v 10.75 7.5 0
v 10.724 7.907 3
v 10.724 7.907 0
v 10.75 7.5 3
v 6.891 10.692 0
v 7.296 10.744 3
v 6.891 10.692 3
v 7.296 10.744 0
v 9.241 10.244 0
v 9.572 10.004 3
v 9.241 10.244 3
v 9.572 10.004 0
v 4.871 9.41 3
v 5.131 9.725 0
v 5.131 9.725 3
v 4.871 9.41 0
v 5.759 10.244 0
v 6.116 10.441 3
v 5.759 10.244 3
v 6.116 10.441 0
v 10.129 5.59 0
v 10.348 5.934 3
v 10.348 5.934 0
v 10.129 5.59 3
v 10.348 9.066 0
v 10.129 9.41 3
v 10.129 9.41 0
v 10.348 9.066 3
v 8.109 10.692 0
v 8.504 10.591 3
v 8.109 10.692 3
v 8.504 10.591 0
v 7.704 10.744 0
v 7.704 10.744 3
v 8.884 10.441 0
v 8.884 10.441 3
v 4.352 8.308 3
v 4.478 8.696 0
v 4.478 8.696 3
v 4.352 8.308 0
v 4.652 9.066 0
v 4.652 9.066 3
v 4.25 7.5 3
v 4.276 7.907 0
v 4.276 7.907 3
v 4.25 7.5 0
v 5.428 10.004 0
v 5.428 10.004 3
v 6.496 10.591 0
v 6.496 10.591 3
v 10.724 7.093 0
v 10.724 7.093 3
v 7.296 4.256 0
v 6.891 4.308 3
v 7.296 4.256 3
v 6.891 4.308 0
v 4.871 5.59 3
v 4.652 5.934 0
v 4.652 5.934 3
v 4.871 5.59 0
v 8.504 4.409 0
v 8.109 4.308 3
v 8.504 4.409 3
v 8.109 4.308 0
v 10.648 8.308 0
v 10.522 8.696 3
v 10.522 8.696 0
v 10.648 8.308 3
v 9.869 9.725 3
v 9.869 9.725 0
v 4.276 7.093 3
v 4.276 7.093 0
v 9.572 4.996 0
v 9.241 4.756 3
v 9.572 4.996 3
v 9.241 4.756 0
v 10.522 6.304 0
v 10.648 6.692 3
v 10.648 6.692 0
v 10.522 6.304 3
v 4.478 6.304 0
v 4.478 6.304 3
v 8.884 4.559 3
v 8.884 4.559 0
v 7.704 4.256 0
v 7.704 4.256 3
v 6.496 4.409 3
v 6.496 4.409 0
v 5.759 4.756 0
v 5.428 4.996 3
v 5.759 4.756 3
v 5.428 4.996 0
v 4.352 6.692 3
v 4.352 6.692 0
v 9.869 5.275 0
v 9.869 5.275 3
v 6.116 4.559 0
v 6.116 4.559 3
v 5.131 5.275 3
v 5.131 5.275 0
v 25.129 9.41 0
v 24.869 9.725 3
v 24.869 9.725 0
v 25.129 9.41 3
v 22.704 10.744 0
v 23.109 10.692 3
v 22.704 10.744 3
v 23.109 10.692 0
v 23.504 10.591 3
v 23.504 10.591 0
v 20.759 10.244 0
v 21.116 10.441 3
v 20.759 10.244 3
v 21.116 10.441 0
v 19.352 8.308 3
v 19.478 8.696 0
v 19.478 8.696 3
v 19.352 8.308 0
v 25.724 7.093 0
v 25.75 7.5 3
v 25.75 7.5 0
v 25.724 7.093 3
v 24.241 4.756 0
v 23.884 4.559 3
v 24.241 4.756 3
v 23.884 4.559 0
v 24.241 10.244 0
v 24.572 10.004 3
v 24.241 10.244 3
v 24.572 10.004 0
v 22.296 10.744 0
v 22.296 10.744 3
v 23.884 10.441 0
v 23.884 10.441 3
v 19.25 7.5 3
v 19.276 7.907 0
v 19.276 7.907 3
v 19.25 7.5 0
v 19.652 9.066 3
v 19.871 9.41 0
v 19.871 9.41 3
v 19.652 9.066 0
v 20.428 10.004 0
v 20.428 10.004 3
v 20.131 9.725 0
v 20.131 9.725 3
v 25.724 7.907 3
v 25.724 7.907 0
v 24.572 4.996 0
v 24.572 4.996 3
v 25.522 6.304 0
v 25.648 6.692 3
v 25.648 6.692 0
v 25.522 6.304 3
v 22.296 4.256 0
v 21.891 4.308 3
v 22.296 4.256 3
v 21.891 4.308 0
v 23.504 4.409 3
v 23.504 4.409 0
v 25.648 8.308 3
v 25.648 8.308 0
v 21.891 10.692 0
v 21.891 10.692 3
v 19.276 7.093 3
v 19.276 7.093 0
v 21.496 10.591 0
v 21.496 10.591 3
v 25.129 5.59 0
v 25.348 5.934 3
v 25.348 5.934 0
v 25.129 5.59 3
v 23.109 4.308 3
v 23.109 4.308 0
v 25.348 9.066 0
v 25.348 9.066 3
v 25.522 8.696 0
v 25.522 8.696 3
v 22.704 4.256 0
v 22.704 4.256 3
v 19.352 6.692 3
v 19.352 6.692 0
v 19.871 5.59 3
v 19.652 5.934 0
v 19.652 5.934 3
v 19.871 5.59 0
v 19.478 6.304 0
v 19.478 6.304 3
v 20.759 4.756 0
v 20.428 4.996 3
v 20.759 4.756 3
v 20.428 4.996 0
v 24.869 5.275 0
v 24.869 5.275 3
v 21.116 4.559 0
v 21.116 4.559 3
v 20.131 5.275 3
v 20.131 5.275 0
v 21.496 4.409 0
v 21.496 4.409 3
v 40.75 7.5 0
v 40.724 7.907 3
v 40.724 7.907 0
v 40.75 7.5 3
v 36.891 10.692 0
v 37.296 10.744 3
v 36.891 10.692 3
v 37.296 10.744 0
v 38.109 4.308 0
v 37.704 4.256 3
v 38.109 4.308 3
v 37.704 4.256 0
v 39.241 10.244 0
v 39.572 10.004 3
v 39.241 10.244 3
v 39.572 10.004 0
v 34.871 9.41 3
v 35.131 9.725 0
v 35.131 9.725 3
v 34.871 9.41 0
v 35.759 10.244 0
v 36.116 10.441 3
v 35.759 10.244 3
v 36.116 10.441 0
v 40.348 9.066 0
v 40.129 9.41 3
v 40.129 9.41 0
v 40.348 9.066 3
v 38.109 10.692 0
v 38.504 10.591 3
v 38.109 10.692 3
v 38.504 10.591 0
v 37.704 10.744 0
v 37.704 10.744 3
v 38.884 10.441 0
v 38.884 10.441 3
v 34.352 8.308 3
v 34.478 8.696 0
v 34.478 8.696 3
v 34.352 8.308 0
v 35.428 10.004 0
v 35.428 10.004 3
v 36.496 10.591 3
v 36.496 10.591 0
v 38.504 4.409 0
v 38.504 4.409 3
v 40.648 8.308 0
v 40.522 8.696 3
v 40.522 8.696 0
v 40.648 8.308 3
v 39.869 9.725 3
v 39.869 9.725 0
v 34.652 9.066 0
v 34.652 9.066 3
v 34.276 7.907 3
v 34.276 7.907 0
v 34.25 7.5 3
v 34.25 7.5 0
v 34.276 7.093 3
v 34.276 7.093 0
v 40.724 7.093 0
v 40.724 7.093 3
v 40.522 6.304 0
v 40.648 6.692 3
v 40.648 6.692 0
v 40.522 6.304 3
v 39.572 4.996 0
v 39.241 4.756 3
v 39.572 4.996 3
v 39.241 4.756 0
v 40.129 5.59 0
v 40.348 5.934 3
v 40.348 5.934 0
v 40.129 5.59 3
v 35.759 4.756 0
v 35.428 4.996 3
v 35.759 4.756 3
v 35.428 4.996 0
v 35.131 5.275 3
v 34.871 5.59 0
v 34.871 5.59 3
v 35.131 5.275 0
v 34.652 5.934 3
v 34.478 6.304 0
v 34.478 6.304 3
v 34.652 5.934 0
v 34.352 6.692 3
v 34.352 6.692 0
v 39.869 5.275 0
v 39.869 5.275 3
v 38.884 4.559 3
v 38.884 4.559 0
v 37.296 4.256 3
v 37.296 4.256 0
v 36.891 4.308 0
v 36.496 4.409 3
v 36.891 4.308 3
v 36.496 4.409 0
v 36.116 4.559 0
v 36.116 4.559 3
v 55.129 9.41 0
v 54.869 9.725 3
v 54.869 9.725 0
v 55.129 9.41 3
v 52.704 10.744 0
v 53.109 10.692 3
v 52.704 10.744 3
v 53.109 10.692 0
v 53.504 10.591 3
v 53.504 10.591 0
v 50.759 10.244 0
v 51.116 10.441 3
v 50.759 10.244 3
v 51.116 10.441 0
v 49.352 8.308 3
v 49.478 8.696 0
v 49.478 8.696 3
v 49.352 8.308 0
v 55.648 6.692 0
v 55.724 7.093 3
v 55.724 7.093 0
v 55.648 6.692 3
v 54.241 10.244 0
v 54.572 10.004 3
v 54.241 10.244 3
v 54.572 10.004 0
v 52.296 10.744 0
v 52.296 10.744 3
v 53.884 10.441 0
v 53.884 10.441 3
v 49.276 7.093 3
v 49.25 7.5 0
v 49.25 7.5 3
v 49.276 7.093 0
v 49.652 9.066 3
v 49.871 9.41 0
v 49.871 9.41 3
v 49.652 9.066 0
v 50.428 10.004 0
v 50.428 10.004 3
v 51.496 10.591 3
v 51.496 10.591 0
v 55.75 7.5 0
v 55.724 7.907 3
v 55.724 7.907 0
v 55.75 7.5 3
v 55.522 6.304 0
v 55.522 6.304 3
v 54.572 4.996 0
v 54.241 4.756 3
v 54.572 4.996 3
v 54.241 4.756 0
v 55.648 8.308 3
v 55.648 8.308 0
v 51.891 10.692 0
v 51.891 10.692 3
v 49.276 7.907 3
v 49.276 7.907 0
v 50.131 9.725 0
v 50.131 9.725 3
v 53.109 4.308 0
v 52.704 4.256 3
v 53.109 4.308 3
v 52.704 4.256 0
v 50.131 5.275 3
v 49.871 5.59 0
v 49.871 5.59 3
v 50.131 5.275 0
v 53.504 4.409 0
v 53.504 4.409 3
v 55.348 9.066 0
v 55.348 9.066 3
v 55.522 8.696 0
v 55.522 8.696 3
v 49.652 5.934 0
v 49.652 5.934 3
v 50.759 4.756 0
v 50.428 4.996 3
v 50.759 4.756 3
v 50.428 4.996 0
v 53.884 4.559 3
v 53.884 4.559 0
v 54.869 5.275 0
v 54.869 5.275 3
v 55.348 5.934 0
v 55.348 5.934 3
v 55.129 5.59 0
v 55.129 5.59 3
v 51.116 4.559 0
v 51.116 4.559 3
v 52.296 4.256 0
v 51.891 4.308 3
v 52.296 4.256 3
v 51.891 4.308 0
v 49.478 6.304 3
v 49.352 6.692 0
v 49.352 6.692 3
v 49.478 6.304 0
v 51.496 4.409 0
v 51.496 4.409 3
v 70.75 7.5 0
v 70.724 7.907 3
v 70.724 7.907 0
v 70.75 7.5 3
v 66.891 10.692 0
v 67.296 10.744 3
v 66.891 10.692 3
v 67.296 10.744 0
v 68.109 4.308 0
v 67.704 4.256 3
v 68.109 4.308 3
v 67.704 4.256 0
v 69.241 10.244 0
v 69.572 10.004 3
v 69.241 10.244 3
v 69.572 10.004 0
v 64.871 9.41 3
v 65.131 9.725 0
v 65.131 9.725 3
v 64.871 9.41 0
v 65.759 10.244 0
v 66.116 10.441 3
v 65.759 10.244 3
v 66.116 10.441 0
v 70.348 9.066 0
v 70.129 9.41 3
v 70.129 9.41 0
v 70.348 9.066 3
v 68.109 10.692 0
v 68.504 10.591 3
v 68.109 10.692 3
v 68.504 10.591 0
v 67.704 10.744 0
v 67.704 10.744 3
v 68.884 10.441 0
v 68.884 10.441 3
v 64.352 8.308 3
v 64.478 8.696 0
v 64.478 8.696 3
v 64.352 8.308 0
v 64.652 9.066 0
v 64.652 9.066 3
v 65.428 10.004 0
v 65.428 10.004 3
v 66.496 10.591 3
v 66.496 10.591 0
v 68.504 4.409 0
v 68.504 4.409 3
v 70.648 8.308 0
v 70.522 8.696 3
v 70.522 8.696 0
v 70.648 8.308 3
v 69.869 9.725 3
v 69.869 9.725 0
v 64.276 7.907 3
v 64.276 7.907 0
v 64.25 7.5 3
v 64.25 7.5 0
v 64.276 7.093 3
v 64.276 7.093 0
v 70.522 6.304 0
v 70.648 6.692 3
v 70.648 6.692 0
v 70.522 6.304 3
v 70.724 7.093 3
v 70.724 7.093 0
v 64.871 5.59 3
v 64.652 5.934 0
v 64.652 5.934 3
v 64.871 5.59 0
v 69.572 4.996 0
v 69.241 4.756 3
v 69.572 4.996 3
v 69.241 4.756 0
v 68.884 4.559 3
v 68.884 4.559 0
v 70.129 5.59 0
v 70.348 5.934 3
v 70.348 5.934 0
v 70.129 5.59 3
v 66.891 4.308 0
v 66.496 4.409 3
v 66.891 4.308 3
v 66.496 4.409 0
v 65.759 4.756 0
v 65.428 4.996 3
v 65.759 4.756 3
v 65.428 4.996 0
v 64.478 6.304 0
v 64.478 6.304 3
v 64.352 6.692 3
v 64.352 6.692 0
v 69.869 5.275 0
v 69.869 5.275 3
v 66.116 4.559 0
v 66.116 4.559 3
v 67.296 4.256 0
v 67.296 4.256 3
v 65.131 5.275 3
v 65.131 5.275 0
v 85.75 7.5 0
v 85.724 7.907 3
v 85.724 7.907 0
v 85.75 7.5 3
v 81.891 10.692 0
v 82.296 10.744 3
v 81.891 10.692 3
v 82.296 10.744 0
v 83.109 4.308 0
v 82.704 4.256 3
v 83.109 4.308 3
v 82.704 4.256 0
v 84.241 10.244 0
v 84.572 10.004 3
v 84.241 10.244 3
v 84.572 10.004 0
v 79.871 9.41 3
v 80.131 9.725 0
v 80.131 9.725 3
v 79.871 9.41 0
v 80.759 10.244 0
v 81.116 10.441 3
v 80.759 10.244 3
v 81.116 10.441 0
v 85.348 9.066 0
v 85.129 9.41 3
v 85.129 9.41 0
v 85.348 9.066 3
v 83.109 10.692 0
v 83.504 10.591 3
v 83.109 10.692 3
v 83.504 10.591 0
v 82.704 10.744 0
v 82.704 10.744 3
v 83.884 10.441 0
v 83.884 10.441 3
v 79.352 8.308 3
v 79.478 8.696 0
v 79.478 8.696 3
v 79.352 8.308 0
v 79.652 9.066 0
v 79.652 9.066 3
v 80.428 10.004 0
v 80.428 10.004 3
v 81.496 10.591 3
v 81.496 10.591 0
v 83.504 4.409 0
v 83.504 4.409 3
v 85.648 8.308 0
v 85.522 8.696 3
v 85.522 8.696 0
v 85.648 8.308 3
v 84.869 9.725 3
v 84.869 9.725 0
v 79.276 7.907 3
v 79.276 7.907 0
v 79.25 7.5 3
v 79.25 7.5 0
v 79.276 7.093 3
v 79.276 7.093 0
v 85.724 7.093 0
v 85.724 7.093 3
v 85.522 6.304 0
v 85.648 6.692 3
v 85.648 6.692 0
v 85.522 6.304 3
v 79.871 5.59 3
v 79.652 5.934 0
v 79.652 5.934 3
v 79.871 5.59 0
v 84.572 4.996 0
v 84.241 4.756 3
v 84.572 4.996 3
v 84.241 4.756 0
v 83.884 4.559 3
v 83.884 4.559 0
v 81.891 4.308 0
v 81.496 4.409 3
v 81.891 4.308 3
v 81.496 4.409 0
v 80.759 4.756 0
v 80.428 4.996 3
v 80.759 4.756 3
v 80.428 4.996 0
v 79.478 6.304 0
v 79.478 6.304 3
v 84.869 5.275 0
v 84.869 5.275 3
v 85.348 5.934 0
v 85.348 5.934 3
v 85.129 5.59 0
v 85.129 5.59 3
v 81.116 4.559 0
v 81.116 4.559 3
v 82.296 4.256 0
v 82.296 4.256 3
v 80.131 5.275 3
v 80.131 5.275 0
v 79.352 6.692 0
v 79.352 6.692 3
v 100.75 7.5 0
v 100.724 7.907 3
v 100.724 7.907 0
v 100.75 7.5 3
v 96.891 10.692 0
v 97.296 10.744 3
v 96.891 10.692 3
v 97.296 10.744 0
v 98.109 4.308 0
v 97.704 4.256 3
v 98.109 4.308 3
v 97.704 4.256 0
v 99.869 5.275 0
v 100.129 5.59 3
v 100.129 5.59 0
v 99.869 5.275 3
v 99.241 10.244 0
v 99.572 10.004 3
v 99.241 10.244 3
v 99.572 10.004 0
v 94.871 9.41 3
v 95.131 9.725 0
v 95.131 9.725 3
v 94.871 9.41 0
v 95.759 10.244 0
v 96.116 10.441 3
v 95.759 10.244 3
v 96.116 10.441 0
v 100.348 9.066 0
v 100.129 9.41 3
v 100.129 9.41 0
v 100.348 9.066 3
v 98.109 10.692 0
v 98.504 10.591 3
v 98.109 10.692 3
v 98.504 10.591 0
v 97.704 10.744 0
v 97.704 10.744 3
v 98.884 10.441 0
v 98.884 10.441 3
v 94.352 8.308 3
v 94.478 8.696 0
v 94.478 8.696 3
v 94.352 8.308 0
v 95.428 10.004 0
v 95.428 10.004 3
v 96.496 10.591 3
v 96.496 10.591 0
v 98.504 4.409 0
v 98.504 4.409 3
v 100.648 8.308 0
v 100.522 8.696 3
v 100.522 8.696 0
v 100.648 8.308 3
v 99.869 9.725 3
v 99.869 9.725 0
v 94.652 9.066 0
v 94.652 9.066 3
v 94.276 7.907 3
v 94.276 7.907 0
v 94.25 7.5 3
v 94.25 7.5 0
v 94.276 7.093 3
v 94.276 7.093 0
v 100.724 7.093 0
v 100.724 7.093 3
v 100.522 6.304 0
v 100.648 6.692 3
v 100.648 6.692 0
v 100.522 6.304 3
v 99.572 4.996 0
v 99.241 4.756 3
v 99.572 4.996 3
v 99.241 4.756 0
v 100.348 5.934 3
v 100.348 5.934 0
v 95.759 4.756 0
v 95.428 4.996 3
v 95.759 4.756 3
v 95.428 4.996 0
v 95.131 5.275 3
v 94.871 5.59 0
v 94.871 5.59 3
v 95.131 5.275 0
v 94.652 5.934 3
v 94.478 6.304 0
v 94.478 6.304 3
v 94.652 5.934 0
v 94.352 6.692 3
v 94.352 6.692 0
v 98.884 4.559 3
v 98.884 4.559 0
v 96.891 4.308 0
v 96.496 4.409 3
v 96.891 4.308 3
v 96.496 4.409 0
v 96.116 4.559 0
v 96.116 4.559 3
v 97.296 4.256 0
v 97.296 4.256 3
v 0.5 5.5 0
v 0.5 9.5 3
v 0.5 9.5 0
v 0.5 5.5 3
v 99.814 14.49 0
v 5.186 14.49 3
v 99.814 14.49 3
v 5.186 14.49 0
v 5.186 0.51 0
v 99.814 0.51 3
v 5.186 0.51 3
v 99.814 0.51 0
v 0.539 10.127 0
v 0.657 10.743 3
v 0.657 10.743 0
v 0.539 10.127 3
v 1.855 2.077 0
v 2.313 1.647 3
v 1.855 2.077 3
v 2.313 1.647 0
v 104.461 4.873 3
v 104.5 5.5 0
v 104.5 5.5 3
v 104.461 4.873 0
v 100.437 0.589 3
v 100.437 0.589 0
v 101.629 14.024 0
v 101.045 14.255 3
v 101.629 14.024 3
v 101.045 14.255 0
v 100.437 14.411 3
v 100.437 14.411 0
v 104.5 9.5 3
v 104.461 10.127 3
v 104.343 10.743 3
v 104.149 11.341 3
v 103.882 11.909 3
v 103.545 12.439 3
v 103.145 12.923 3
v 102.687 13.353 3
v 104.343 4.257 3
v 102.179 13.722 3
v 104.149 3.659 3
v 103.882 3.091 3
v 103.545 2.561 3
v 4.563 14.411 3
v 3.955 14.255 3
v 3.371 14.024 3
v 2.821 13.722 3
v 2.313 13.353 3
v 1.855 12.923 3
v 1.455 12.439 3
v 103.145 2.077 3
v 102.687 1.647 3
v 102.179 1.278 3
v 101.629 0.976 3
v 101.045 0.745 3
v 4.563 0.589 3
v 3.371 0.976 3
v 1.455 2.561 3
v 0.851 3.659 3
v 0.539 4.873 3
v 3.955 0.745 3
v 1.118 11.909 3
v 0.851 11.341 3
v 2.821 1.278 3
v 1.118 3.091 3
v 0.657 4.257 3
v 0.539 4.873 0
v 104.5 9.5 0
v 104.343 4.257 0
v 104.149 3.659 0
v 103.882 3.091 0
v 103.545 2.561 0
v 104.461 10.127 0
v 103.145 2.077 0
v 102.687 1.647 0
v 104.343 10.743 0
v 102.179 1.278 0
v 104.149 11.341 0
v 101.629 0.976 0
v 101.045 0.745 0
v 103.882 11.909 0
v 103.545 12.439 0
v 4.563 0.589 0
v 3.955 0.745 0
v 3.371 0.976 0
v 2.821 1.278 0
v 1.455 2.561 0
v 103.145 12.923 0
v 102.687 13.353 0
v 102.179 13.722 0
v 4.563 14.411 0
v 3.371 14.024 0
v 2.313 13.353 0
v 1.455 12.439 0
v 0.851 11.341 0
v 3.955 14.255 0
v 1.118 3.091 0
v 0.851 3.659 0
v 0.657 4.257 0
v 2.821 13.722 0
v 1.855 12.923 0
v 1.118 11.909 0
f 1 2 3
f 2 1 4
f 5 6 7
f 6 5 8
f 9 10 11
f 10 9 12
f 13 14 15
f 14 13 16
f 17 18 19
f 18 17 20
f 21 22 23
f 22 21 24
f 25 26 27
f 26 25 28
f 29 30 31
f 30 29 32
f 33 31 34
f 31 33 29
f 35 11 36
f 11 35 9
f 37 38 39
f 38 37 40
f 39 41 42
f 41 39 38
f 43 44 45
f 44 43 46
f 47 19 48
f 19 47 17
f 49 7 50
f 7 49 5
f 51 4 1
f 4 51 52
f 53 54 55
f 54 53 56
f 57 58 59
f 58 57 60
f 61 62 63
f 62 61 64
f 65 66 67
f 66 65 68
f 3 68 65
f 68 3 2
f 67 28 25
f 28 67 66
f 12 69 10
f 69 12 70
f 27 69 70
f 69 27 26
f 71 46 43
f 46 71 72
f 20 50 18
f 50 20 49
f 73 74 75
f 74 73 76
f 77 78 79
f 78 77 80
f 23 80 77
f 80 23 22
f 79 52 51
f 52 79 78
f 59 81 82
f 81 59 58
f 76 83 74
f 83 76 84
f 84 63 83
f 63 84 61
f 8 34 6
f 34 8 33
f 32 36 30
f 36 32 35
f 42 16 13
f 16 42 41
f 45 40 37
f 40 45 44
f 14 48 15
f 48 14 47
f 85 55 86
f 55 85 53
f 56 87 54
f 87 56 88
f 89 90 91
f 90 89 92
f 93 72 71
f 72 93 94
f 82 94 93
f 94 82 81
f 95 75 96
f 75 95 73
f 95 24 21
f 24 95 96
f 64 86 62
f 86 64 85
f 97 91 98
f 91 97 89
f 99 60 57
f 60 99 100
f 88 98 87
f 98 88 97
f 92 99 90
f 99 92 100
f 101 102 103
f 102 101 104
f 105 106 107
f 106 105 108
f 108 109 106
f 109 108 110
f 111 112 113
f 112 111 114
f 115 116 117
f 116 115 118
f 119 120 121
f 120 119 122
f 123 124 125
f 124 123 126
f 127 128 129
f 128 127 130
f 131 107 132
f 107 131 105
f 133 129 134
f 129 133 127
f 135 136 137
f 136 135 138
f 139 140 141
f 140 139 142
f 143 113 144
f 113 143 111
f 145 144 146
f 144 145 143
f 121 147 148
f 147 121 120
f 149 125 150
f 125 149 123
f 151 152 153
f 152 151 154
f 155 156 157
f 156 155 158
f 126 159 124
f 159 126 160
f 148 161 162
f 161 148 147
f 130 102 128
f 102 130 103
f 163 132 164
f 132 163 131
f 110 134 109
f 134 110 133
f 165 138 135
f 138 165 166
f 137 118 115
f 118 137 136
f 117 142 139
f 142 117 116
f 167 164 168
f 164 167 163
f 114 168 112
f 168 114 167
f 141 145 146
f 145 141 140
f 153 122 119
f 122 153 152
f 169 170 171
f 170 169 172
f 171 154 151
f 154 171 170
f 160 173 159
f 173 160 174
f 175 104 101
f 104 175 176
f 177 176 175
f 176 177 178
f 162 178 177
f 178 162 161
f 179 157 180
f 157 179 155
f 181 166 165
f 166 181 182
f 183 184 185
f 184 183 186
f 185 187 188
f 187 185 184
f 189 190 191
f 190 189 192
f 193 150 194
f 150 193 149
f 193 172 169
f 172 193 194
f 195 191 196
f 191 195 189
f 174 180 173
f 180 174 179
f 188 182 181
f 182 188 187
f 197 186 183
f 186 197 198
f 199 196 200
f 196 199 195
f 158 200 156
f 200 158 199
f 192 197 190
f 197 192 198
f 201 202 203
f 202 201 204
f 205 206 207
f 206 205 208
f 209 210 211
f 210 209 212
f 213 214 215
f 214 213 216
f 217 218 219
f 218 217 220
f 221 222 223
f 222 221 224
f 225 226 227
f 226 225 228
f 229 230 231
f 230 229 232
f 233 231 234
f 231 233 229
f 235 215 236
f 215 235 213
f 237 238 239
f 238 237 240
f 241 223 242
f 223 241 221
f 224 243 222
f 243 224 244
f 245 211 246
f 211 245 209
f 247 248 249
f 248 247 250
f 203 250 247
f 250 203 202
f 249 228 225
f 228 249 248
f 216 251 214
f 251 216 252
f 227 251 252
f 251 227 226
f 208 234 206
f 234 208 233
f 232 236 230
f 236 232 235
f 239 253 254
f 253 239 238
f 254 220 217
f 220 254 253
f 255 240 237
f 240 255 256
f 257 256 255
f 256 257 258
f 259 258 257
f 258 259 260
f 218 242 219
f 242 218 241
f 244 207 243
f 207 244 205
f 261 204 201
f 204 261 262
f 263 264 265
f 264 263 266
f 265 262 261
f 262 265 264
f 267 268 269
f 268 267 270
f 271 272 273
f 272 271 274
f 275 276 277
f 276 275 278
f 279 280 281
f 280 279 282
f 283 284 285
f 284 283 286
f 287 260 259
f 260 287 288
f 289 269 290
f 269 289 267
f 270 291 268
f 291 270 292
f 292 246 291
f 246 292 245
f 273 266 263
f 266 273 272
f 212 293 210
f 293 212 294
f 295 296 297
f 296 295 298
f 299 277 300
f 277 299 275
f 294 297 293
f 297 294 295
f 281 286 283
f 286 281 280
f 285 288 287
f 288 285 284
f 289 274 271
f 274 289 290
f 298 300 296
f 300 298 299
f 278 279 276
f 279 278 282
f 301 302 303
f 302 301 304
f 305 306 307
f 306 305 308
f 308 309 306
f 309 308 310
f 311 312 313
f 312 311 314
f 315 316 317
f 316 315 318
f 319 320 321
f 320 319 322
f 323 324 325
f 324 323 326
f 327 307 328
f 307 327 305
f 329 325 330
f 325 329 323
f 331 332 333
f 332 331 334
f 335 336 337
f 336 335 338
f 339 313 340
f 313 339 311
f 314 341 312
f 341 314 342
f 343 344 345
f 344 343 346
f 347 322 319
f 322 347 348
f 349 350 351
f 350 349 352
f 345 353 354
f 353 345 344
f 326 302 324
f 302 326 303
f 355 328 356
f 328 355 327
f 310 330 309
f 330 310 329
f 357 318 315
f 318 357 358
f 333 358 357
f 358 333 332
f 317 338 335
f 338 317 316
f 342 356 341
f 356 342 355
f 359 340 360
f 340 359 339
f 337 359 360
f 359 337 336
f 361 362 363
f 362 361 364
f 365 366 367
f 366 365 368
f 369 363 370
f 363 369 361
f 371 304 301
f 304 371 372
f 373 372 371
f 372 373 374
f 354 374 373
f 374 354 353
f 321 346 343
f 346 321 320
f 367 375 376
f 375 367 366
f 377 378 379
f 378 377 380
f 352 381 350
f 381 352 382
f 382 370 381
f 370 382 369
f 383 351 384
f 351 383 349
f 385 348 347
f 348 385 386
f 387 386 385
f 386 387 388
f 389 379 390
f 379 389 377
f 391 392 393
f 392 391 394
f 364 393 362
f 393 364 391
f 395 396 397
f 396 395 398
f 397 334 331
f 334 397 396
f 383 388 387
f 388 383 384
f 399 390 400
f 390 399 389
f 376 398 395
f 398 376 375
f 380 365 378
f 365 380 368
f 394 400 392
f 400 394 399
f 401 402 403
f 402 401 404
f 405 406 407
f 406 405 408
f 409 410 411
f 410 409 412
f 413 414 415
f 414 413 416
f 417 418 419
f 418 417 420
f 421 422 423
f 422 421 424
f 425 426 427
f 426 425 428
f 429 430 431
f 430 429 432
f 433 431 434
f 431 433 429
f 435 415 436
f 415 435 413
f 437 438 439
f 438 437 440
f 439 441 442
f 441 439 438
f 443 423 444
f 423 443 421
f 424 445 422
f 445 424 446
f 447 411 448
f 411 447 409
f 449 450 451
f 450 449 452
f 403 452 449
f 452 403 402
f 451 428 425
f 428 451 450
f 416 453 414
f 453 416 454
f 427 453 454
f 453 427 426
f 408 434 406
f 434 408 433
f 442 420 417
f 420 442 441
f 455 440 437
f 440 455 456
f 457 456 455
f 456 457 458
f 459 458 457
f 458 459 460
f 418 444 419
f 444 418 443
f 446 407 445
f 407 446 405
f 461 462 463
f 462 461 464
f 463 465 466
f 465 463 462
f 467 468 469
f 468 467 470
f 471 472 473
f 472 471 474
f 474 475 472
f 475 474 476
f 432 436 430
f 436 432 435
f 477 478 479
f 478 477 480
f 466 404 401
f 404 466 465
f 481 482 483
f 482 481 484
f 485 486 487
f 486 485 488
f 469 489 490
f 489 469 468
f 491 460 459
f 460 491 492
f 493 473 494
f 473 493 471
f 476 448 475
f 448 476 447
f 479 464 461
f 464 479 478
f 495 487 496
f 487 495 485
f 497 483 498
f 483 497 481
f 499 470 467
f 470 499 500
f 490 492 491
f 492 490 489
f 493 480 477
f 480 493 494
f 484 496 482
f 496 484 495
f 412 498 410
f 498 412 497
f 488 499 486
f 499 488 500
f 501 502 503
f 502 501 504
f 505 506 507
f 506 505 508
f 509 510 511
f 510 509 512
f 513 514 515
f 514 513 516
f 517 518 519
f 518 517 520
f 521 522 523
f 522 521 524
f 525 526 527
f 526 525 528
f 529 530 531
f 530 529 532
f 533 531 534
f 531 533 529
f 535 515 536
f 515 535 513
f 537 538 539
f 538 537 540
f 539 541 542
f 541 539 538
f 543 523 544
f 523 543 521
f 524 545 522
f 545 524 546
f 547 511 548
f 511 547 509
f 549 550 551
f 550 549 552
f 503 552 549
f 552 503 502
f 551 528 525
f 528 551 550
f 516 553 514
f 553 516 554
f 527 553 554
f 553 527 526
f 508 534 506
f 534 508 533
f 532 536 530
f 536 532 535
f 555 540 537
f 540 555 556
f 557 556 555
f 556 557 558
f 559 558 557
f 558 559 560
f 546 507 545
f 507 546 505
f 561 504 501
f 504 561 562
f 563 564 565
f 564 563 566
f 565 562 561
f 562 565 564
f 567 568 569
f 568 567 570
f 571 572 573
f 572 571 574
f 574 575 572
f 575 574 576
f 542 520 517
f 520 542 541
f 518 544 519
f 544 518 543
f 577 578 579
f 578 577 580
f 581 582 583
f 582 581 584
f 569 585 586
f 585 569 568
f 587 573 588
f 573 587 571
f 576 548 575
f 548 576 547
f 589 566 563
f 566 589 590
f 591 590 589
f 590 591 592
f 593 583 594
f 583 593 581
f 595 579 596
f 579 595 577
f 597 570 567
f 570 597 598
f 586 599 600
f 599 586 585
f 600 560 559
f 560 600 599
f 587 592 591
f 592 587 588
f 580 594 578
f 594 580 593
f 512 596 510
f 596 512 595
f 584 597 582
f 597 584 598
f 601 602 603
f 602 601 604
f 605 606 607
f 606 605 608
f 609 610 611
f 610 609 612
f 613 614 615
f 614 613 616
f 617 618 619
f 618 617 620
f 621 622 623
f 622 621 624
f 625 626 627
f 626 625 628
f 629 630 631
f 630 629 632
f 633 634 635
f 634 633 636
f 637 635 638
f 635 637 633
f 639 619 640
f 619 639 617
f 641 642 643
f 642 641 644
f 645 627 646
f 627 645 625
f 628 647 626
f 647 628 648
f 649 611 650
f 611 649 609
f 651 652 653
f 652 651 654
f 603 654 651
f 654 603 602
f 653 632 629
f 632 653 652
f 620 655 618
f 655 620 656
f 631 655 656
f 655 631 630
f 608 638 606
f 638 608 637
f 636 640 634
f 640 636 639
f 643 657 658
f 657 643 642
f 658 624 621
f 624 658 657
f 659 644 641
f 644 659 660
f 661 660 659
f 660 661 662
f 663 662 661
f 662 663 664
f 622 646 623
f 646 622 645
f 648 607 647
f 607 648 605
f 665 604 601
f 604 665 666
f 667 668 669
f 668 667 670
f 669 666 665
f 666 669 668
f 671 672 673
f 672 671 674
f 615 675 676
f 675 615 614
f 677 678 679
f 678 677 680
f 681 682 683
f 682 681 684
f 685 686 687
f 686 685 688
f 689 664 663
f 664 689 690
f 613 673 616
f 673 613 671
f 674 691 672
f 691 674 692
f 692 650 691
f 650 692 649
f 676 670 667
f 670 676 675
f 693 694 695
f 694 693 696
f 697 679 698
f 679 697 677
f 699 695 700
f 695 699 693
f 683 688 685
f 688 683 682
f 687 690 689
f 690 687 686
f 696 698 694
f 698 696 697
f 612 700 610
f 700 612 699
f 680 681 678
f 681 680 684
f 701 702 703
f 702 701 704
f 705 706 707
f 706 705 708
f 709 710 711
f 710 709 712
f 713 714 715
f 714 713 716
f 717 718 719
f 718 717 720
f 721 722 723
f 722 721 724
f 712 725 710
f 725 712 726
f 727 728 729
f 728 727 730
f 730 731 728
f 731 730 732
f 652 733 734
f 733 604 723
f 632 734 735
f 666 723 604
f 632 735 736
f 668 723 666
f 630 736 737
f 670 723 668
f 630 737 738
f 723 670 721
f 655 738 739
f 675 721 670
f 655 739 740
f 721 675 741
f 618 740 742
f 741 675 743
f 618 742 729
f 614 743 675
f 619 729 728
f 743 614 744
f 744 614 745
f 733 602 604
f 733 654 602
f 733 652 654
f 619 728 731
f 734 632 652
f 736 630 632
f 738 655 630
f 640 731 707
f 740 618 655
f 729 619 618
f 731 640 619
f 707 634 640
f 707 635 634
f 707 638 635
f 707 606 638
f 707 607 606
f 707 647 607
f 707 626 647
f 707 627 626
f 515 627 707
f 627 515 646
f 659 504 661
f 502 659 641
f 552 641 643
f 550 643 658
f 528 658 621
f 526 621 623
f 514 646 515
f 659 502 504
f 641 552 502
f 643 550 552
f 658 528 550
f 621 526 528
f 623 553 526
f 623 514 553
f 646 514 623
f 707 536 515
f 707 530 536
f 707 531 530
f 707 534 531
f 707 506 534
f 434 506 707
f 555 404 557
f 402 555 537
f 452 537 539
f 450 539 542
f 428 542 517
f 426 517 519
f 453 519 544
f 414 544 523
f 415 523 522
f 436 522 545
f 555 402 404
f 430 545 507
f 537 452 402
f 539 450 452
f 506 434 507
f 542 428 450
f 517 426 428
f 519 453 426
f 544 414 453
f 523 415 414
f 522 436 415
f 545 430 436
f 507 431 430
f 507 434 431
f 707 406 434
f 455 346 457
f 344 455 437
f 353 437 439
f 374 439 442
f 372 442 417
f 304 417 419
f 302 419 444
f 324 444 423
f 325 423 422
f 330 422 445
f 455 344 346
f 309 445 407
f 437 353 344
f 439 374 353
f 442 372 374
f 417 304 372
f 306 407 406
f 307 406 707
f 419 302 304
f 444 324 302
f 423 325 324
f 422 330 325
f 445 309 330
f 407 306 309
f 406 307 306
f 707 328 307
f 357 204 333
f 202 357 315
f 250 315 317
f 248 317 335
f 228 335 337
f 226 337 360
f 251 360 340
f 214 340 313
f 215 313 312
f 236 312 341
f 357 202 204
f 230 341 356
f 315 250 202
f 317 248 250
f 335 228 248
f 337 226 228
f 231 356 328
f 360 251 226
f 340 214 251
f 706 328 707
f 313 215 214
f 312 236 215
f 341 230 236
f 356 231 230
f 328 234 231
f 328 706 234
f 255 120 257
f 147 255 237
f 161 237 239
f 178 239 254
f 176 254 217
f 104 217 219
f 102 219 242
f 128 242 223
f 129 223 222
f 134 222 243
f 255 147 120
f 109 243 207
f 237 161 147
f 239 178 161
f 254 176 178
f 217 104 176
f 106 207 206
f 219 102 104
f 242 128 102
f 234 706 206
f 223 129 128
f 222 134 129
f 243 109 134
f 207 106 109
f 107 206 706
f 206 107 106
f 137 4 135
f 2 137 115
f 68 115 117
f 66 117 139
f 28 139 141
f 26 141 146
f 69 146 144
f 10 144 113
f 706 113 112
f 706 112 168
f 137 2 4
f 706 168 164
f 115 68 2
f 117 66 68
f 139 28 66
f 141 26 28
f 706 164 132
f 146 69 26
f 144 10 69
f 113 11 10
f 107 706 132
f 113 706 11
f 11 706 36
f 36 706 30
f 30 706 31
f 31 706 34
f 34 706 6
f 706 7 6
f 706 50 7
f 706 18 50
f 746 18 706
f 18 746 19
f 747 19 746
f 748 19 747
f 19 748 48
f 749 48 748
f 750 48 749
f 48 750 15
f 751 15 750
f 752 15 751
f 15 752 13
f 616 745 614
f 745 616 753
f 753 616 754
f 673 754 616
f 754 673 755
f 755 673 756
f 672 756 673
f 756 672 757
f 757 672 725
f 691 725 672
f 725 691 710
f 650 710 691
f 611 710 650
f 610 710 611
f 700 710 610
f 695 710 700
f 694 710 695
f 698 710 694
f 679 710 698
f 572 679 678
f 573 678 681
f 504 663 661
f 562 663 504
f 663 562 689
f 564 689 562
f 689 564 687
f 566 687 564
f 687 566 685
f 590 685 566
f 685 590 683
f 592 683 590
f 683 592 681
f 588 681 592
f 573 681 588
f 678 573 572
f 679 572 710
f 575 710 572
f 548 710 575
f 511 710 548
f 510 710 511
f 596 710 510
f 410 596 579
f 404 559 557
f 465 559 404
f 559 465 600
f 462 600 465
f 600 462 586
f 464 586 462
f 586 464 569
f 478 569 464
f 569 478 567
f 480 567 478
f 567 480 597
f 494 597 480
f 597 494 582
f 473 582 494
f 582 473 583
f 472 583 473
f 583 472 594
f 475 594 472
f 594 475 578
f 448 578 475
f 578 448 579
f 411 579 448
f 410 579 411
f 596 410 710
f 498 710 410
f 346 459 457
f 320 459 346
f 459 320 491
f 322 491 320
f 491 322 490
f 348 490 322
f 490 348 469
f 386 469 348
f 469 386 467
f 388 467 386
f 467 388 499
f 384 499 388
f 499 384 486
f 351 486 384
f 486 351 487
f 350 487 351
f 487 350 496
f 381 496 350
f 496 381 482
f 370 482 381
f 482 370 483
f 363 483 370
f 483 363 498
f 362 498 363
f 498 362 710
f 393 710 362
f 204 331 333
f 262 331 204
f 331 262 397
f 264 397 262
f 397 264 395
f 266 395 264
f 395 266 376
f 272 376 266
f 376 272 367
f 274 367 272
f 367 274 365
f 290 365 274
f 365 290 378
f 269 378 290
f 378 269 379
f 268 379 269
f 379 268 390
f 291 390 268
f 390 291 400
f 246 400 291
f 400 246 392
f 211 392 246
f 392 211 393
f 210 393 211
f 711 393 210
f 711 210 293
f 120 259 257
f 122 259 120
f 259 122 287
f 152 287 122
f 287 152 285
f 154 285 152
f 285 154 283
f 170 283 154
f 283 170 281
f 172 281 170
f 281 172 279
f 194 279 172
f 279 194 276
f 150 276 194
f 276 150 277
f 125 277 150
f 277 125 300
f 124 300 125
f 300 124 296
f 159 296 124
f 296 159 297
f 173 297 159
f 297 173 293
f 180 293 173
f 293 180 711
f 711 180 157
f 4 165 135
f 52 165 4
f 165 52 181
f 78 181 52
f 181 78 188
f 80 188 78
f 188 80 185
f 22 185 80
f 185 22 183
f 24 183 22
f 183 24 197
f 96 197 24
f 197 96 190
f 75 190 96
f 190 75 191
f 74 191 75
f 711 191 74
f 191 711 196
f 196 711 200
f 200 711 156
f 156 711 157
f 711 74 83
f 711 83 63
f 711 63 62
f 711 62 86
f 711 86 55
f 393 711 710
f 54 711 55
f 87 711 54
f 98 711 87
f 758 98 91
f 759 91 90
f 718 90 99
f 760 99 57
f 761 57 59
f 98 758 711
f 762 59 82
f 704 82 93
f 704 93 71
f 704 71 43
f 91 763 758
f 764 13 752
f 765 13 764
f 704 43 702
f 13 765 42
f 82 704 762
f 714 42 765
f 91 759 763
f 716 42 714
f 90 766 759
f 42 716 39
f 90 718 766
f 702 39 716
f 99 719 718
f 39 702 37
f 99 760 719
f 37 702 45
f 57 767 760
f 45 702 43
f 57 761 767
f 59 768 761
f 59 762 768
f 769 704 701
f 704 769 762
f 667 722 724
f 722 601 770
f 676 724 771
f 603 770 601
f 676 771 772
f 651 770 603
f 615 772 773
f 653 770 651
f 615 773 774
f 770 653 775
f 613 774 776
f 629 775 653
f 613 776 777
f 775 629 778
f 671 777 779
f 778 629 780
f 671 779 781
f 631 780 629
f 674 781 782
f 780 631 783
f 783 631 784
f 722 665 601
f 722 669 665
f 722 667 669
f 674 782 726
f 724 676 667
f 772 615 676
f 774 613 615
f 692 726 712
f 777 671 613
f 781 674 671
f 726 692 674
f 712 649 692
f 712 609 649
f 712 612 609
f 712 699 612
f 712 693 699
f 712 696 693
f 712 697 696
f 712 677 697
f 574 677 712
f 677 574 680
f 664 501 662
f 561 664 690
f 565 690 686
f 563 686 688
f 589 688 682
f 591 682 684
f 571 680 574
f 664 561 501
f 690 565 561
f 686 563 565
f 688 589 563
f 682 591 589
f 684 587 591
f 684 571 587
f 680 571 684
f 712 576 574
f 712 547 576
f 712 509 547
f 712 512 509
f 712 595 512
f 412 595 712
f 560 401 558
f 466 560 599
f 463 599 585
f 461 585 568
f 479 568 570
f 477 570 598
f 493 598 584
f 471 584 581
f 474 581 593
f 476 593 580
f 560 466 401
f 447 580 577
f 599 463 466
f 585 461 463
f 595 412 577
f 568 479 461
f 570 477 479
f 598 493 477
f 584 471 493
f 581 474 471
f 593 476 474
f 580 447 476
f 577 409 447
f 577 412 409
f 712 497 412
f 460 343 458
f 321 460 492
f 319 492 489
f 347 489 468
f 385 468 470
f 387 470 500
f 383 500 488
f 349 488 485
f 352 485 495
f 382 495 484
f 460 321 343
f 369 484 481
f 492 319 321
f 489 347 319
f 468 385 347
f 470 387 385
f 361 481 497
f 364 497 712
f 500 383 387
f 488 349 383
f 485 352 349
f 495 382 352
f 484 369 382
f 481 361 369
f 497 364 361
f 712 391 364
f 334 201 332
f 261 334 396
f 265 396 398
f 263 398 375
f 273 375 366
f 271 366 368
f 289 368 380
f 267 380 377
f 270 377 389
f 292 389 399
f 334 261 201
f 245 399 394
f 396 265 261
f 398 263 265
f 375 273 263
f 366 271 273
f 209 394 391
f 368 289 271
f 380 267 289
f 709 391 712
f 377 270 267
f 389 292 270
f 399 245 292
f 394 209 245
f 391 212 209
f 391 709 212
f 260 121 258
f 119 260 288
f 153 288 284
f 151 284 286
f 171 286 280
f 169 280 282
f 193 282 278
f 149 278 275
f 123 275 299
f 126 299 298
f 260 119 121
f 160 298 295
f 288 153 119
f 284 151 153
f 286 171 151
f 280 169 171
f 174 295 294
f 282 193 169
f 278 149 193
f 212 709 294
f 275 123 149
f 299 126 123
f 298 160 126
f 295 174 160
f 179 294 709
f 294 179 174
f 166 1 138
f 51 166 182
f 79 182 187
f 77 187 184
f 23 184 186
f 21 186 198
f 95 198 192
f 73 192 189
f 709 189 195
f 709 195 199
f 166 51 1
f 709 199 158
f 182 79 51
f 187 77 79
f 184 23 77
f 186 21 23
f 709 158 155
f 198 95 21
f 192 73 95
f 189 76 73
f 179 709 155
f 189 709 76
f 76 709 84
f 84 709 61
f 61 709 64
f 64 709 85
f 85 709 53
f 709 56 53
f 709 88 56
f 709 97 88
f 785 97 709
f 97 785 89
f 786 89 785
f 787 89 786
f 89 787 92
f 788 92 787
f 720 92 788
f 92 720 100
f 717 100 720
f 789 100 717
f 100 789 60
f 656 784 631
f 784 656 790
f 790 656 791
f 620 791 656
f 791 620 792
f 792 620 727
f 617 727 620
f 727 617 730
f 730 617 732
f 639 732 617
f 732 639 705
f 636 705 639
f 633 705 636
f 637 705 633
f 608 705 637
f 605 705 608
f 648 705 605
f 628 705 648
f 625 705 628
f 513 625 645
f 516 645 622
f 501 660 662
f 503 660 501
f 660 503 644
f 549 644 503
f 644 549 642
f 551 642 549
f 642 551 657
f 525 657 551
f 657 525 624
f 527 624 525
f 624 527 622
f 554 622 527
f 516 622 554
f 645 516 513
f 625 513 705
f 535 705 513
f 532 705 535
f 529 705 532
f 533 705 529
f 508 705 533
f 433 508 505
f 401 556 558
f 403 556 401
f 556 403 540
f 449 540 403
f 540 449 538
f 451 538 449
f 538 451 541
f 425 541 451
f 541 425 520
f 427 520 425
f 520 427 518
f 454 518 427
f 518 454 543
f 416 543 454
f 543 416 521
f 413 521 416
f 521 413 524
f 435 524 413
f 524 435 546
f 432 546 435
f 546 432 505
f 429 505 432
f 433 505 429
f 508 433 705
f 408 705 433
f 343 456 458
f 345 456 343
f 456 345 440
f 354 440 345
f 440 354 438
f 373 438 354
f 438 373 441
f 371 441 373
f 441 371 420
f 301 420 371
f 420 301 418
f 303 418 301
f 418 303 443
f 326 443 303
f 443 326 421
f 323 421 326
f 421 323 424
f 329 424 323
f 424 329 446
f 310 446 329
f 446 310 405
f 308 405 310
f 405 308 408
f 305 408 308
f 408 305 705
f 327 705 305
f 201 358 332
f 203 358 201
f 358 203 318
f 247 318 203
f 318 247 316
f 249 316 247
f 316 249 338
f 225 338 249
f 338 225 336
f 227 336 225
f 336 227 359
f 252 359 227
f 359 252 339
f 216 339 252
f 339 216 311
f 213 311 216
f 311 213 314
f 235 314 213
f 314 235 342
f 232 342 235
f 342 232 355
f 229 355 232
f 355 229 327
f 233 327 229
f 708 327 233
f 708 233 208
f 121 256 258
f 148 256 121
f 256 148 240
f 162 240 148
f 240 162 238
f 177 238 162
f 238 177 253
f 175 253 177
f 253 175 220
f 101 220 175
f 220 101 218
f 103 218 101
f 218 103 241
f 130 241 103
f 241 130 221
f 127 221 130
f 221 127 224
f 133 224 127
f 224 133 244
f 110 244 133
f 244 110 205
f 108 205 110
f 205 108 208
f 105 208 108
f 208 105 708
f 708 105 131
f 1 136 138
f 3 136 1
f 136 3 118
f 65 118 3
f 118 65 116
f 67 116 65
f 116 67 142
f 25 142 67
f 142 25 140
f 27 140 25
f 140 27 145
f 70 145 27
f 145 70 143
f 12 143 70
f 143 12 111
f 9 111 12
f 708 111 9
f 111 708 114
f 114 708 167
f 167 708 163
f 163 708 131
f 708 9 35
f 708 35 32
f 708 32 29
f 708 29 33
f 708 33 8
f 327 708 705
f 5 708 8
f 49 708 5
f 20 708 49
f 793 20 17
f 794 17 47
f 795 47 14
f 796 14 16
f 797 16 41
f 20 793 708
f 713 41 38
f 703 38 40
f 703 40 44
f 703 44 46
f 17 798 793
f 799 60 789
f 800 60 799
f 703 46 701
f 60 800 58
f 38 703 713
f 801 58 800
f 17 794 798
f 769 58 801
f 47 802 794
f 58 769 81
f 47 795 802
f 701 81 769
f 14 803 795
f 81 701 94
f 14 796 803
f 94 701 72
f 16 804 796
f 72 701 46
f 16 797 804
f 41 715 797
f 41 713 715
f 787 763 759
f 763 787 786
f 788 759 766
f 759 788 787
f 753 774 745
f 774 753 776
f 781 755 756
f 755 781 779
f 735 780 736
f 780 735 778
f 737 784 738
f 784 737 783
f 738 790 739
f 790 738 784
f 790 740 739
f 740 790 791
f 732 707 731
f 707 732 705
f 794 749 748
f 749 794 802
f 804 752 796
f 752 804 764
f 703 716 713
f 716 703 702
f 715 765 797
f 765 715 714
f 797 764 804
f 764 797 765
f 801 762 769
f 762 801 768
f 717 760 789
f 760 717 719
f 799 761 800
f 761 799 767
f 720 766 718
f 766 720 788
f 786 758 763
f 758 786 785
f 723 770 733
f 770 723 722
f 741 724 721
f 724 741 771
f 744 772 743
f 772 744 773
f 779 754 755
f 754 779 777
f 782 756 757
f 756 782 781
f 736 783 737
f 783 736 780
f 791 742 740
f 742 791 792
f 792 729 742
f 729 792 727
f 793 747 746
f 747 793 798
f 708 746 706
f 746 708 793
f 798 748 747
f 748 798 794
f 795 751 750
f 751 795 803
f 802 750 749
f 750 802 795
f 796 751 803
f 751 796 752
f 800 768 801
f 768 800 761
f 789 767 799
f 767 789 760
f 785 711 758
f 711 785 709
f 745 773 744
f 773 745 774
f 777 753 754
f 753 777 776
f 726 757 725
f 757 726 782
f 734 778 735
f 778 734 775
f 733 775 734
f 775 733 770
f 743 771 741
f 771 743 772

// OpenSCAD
// Generated by SolidPython 1.1.3 on 2023-01-30 14:07:43
$fn = 50;


difference() {
	union() {
		translate(v = [52.5000000000, 7.5000000000, 0]) {
			rotate(a = [0, 0, 0]) {
				hull() {
					translate(v = [-47.0000000000, 2.0000000000, 0]) {
						rotate(a = [0, 0, 0]) {
							translate(v = [0, 0, 0]) {
								rotate(a = [0, 0, 0]) {
									cylinder(h = 3, r = 5);
								}
							}
						}
					}
					translate(v = [47.0000000000, 2.0000000000, 0]) {
						rotate(a = [0, 0, 0]) {
							translate(v = [0, 0, 0]) {
								rotate(a = [0, 0, 0]) {
									cylinder(h = 3, r = 5);
								}
							}
						}
					}
					translate(v = [-47.0000000000, -2.0000000000, 0]) {
						rotate(a = [0, 0, 0]) {
							translate(v = [0, 0, 0]) {
								rotate(a = [0, 0, 0]) {
									cylinder(h = 3, r = 5);
								}
							}
						}
					}
					translate(v = [47.0000000000, -2.0000000000, 0]) {
						rotate(a = [0, 0, 0]) {
							translate(v = [0, 0, 0]) {
								rotate(a = [0, 0, 0]) {
									cylinder(h = 3, r = 5);
								}
							}
						}
					}
				}
			}
		}
	}
	union() {
		translate(v = [7.5000000000, 7.5000000000, 0]) {
			rotate(a = [0, 0, 0]) {
				translate(v = [0, 0, -50]) {
					rotate(a = [0, 0, 0]) {
						cylinder(h = 100, r = 3.2500000000);
					}
				}
			}
		}
		translate(v = [22.5000000000, 7.5000000000, 0]) {
			rotate(a = [0, 0, 0]) {
				translate(v = [0, 0, -50]) {
					rotate(a = [0, 0, 0]) {
						cylinder(h = 100, r = 3.2500000000);
					}
				}
			}
		}
		translate(v = [37.5000000000, 7.5000000000, 0]) {
			rotate(a = [0, 0, 0]) {
				translate(v = [0, 0, -50]) {
					rotate(a = [0, 0, 0]) {
						cylinder(h = 100, r = 3.2500000000);
					}
				}
			}
		}
		translate(v = [52.5000000000, 7.5000000000, 0]) {
			rotate(a = [0, 0, 0]) {
				translate(v = [0, 0, -50]) {
					rotate(a = [0, 0, 0]) {
						cylinder(h = 100, r = 3.2500000000);
					}
				}
			}
		}
		translate(v = [67.5000000000, 7.5000000000, 0]) {
			rotate(a = [0, 0, 0]) {
				translate(v = [0, 0, -50]) {
					rotate(a = [0, 0, 0]) {
						cylinder(h = 100, r = 3.2500000000);
					}
				}
			}
		}
		translate(v = [82.5000000000, 7.5000000000, 0]) {
			rotate(a = [0, 0, 0]) {
				translate(v = [0, 0, -50]) {
					rotate(a = [0, 0, 0]) {
						cylinder(h = 100, r = 3.2500000000);
					}
				}
			}
		}
		translate(v = [97.5000000000, 7.5000000000, 0]) {
			rotate(a = [0, 0, 0]) {
				translate(v = [0, 0, -50]) {
					rotate(a = [0, 0, 0]) {
						cylinder(h = 100, r = 3.2500000000);
					}
				}
			}
		}
	}
}
/***********************************************
*********      SolidPython code:      **********
************************************************
 
from solid import *
import os
import subprocess

import oomB

import opsc_library_gen

mode = "laser"
#mode = "3d_print"

defined_objects = {}

radius_dict = {}
countersunk_dict = {}


def set_mode(m):
    global mode
    mode = m
    radius_dict['M6'] = 6.5/2
    radius_dict['M3'] = 3.3/2
    if mode == "laser":
        radius_dict['M6'] = 6/2
        radius_dict['M3'] = 3/2

    countersunk_dict['M3'] = {}
    countersunk_dict['M3']['little_rad'] = radius_dict['M3']
    countersunk_dict['M3']['big_rad'] = (5.5+0.6)/2
    if mode == "laser":
        countersunk_dict['M3']['big_rad'] = (4.75+0.6)/2
        countersunk_dict['M3']['little_rad'] = (4.75+0.6)/2

    countersunk_dict['M3']['height'] = 1.7


def opsc_make_object(filename, objects, save_type="none",resolution=50, layers = 1, tilediff = 200, mode="laser"):
    set_mode(mode)
    save_type = save_type.lower()
    os.makedirs(os.path.dirname(filename), exist_ok=True)
    final_object = opsc_get_object(objects)
    # Save the final object to the specified filename    
    scad_render_to_file(final_object, filename, file_header='$fn = %s;' % resolution, include_orig_code=True)
    if mode == "laser":
        filename_laser = filename.replace(".scad","-flat.scad")
        scad_render_to_file(getLaser(final_object, layers=layers, tilediff=tilediff), filename_laser, file_header='$fn = %s;' % resolution, include_orig_code=True)
        if save_type == "all":
            saveToAll(filename_laser)
        elif save_type == "dxf":
            saveToDxf(filename_laser)
    if save_type == "all":
        saveToAll(filename)
    elif save_type == "dxf":
        saveToDxf(filename)


def opsc_get_object(objects):
    # Create the solidpython objects
    positive_objects = [get_opsc_item(obj) for obj in objects if obj['type'] == 'positive']
    negative_objects = [get_opsc_item(obj) for obj in objects if obj['type'] == 'negative']
    # Union the positive objects
    positive_object = union()(*positive_objects)
    # Union the negative objects
    negative_object = union()(*negative_objects)
    # Create the final object by subtracting the negative objects from the positive objects
    return difference()(positive_object, negative_object)

def get_opsc_item(params):
    # A dictionary to map radius string values to numerical values
    #radius_dict = {'small': 5, 'medium': 10, 'large': 15}
    # An array of function names for basic shapes
    basic_shapes = ['cube', 'sphere', 'cylinder']
    
    # An array of function names for other shapes
    other_shapes = ['hole', 'slot', 'rounded_rectangle', 'countersunk']
    


    # Convert radius to r if present, and remove radius from the params dictionary
    if 'radius' in params:
        if isinstance(params['radius'], str):
            # Use the radius_dict to map the radius string value to a numerical value
            params['r'] = radius_dict[params['radius']]
        else:
            params['r'] = params['radius']
        del params['radius']
    

    # Check if the object type is a basic shape
    if params['shape'] in basic_shapes:
        # Remove shape and unexpected dictionary values
        allowed_keys = {'size', 'r', 'r1', 'r2', 'd', 'h', 'rw', 'rh', 'dw', 'dh'}
        shape_params = {k: v for k, v in params.items() if k in allowed_keys}

        # Call the corresponding function for the shape parameter, using ** notation to pass the shape_params dictionary as keyword arguments
        return get_opsc_transform(params,globals()[params['shape']](**shape_params))
    
    # If the object type is not a basic shape, check if it's a defined object or one of the other shapes
    elif params['shape'] in other_shapes:
        # Call the corresponding function for the shape parameter, passing the params dictionary as an argument
        p2 = copy.deepcopy(params)
        p2["pos"] = [0,0,0]
        return get_opsc_transform(params,globals()[params['shape']](p2))
    
    # If the object is not a basic shape or a defined object, try to import it from a .scad file
    else:
        obj = defined_objects[params['shape']]
        return get_opsc_transform(params,obj)

def get_opsc_transform(params, solid_obj):
    # Rotate the object based on the 'rot' field in the params dictionary, or the 'rotX', 'rotY', and 'rotZ' fields if 'rot' is not present
    rot = params.get('rot', [])
    if rot:
        rotX, rotY, rotZ = rot
    else:
        rotX = params.get('rotX', 0)
        rotY = params.get('rotY', 0)
        rotZ = params.get('rotZ', 0)
    solid_obj = rotate([rotX, rotY, rotZ])(solid_obj)

    # Translate the object based on the 'pos' field in the params dictionary, or the 'x', 'y', and 'z' fields if 'pos' is not present
    pos = params.get('pos', [])
    if pos:
        x, y, z = pos
    else:
        x = params.get('x', 0)
        y = params.get('y', 0)
        z = params.get('z', 0)
    solid_obj = translate([x, y, z])(solid_obj)
    return solid_obj


import random

def opsc_easy_array(type, shape, repeats, pos_start, shift_arr, **kwargs):
    for i in range(0,3):
        repeats.append(1)
        pos_start.append(0)
        shift_arr.append(0)
    return_objects = []

    for x in range(0,repeats[0]):
        for y in range(0,repeats[1]):
            for z in range(0,repeats[2]):
                return_objects.append(opsc_easy(type, shape, pos=[pos_start[0]+x*shift_arr[0],pos_start[1]+y*shift_arr[1],pos_start[2]+z*shift_arr[2]], **kwargs))
    return return_objects                



def opsc_easy(type, shape, **kwargs):
    obj = {
        'type': type,
        'shape': shape
    }
    for param in ['size', 'r', 'r1', 'r2', 'd', 'h', 'rw', 'rh', 'dw', 'dh', 'pos', 'x', 'y', 'z', 'rot', 'rotX', 'rotY', 'rotZ', "w"]:
        if param in kwargs:
            obj[param] = kwargs[param]
    return obj

def hole(params):
    p2 = copy.deepcopy(params)  
    # Check if the radius is a string and replace it with the corresponding value from the dictionary
    if isinstance(p2['r'], str):
        p2['r'] = radius_dict[p2['r']]
    
    # Set the height to 100 if not specified
    if 'h' not in p2:
        p2['h'] = 100
        p2["pos"] = [0,0,-50]
    p2["center"] = True
    # Create the cylinder object
    p2["shape"] = "cylinder"
    p2["type"] = "positive"

    return get_opsc_item(p2)

import copy

def countersunk(params):
    p2 = copy.deepcopy(params)
    counter_rad = p2['r']
    p2['r'] = radius_dict[p2['r']]
    hp = copy.deepcopy(p2)
    hp["type"] = "positive"
    hp["shape"] = "hole"
    del hp["rot"]
    hol = get_opsc_item(hp)
    
    cp = copy.deepcopy(p2)
    cp["h"] = countersunk_dict[counter_rad]["height"]
    cp["r2"] = countersunk_dict[counter_rad]["little_rad"]
    cp["r1"] = countersunk_dict[counter_rad]["big_rad"]
    del cp["r"]
    del cp["rot"]
    cp["type"] = "positive"
    cp["shape"] = "cylinder"
    cp["pos"] = [0,0,0]

    top = get_opsc_item(cp)
    return union()(hol,top)



def slot(params):  
    p2 = copy.deepcopy(params) 
    if isinstance(p2['r'], str):
        p2['r'] = radius_dict[p2['r']]
    p2["type"] = "positive"
    p2["shape"] = "hole"
    del p2["rot"]
    p2["pos"] = [0,0,0]
    left = copy.deepcopy(p2)
    right = copy.deepcopy(p2)
    left["pos"][0] = p2["w"] / 2 - p2["r"] 
    
    right["pos"][0] = -p2["w"] / 2 + p2["r"] 
    pass
    leftObj = get_opsc_item(left)
    rightObj = get_opsc_item(right)
    return hull()(leftObj, rightObj)

def rounded_rectangle(params):   
    p2 = copy.deepcopy(params) 
    p2["h"] = p2["size"][2]
    p2["pos"] = p2.get("pos", [0, 0, 0]) 
    p2["type"] = "positive"
    p2["shape"] = "hole"
    p2["pos"] = [0,0,0]
    
    if 'rot' in p2:
        del p2["rot"]   
    if 'r' not in p2:
        p2["r"] = 5 
    tl = copy.deepcopy(p2)
    tr = copy.deepcopy(p2)
    bl = copy.deepcopy(p2)
    br = copy.deepcopy(p2)
    tl["pos"][0] = -(p2["size"][0] - p2["r"]*2)/2
    tl["pos"][1] = (p2["size"][1] - p2["r"]*2)/2
    tr["pos"][0] = (p2["size"][0] - p2["r"]*2)/2
    tr["pos"][1] = (p2["size"][1] - p2["r"]*2)/2
    bl["pos"][0] = -(p2["size"][0] - p2["r"]*2)/2
    bl["pos"][1] = -(p2["size"][1] - p2["r"]*2)/2
    br["pos"][0] = (p2["size"][0] - p2["r"]*2)/2
    br["pos"][1] = -(p2["size"][1] - p2["r"]*2)/2
    del tl["size"]
    del tr["size"]
    del bl["size"]
    del br["size"]
    tlo = get_opsc_item(tl)
    tro = get_opsc_item(tr)
    blo = get_opsc_item(bl)
    bro = get_opsc_item(br)    
    return hull()(tlo, tro, blo, bro)



def import_scad_object(filename):
    # Import the .scad file and convert it to a solidpython object
    #filename = "parts"
    obj = import_scad(filename)
    return obj.main()
    


import os
import solid as solidpython

# A dictionary to store the defined objects


def load_scad_objects():
    opsc_library_gen.gen_library(defined_objects)

import random

def test(num_objects):
    objects = []
    for i in range(num_objects):
        # Choose a random shape
        #shape = random.choice(['cube', 'sphere', 'cylinder', 'hole', 'slot', "rounded_rectangle"])
        shape = random.choice(["rounded_rectangle"])

        # Choose a random type
        type = random.choice(['positive', 'negative'])
        
        # Create an empty object dictionary
        obj = {'shape': shape, 'type': type}
        
        # Set shape-specific parameters
        if obj['shape'] in ['cube']:
            obj['size'] =  [random.uniform(5, 15), random.uniform(5, 15), random.uniform(5, 15)]
        if obj['shape'] in ['rounded_rectangle']:
            obj['size'] =  [random.uniform(5, 15), random.uniform(5, 15), random.uniform(5, 15)]
            obj['r'] = random.uniform(0.5, 5)
        elif obj['shape'] == 'sphere':
            obj['r'] = random.uniform(5, 15)
        elif obj['shape'] in ['cylinder', 'hole']:
            obj['r'] = random.uniform(0.5, 5)
            obj['h'] = random.uniform(5, 15)
        elif obj['shape'] == 'slot':
            obj['r'] = random.uniform(0.5, 5)
            obj['h'] = random.uniform(5, 15)
            obj['w'] = random.uniform(5, 15)
        
        # Set a random position and rotation
        obj['pos'] = [random.uniform(-20, 20), random.uniform(-20, 20), random.uniform(-20, 20)]
        obj['rot'] = [random.uniform(-180, 180), random.uniform(-180, 180), random.uniform(-180, 180)]
        
        # Add the object to the list
        objects.append(obj)
    return objects

####### old file saving
def saveToAll(fileIn):
    saveToDxf(fileIn)
    saveToPng(fileIn)
    saveToStl(fileIn)
    saveToSvg(fileIn)

def saveToDxf(fileIn, fileOut="", copy_to_laser=True):
    if fileOut == "":
        fileOut = fileIn.replace(".scad",".dxf")
    saveToFile(fileIn, fileOut)


    
def saveToPng(fileIn, fileOut="",extra="--render"):
    if fileOut == "":
        fileOut = fileIn.replace(".scad",".png")
    saveToFile(fileIn, fileOut)

def saveToStl(fileIn, fileOut=""):
    if fileOut == "":
        fileOut = fileIn.replace(".scad",".stl")
    saveToFile(fileIn, fileOut)
    
def saveToSvg(fileIn, fileOut=""):
    if fileOut == "":
        fileOut = fileIn.replace(".scad",".svg")
    saveToFile(fileIn, fileOut)

def saveToFile(fileIn, fileOut,extra=""):
    #extra = extra + " --colorscheme Tomorrow"

    launchStr = 'openscad -o "' + fileOut + '"' + extra + ' "' + fileIn + '"'
    if ".png" in fileOut:
        launchStr = launchStr + " --render"
    print("            saveToFile launch string: " + launchStr)
    subprocess.run(launchStr)
    x=0

def getLaser(final_object,start=1.5,layers=1,thickness=3,tilediff=200):
        rv= []

        for x in range(layers):
            rv.append(translate([0,x*tilediff,0])(
                    projection()(
                        intersection()(translate([-500,-500,start+x*thickness])(cube(size=[1000,1000,0.1])),
                            final_object
                        )
                    )
            )
            )
            
        return union()(rv)

set_mode("laser")
load_scad_objects() 
 
************************************************/
